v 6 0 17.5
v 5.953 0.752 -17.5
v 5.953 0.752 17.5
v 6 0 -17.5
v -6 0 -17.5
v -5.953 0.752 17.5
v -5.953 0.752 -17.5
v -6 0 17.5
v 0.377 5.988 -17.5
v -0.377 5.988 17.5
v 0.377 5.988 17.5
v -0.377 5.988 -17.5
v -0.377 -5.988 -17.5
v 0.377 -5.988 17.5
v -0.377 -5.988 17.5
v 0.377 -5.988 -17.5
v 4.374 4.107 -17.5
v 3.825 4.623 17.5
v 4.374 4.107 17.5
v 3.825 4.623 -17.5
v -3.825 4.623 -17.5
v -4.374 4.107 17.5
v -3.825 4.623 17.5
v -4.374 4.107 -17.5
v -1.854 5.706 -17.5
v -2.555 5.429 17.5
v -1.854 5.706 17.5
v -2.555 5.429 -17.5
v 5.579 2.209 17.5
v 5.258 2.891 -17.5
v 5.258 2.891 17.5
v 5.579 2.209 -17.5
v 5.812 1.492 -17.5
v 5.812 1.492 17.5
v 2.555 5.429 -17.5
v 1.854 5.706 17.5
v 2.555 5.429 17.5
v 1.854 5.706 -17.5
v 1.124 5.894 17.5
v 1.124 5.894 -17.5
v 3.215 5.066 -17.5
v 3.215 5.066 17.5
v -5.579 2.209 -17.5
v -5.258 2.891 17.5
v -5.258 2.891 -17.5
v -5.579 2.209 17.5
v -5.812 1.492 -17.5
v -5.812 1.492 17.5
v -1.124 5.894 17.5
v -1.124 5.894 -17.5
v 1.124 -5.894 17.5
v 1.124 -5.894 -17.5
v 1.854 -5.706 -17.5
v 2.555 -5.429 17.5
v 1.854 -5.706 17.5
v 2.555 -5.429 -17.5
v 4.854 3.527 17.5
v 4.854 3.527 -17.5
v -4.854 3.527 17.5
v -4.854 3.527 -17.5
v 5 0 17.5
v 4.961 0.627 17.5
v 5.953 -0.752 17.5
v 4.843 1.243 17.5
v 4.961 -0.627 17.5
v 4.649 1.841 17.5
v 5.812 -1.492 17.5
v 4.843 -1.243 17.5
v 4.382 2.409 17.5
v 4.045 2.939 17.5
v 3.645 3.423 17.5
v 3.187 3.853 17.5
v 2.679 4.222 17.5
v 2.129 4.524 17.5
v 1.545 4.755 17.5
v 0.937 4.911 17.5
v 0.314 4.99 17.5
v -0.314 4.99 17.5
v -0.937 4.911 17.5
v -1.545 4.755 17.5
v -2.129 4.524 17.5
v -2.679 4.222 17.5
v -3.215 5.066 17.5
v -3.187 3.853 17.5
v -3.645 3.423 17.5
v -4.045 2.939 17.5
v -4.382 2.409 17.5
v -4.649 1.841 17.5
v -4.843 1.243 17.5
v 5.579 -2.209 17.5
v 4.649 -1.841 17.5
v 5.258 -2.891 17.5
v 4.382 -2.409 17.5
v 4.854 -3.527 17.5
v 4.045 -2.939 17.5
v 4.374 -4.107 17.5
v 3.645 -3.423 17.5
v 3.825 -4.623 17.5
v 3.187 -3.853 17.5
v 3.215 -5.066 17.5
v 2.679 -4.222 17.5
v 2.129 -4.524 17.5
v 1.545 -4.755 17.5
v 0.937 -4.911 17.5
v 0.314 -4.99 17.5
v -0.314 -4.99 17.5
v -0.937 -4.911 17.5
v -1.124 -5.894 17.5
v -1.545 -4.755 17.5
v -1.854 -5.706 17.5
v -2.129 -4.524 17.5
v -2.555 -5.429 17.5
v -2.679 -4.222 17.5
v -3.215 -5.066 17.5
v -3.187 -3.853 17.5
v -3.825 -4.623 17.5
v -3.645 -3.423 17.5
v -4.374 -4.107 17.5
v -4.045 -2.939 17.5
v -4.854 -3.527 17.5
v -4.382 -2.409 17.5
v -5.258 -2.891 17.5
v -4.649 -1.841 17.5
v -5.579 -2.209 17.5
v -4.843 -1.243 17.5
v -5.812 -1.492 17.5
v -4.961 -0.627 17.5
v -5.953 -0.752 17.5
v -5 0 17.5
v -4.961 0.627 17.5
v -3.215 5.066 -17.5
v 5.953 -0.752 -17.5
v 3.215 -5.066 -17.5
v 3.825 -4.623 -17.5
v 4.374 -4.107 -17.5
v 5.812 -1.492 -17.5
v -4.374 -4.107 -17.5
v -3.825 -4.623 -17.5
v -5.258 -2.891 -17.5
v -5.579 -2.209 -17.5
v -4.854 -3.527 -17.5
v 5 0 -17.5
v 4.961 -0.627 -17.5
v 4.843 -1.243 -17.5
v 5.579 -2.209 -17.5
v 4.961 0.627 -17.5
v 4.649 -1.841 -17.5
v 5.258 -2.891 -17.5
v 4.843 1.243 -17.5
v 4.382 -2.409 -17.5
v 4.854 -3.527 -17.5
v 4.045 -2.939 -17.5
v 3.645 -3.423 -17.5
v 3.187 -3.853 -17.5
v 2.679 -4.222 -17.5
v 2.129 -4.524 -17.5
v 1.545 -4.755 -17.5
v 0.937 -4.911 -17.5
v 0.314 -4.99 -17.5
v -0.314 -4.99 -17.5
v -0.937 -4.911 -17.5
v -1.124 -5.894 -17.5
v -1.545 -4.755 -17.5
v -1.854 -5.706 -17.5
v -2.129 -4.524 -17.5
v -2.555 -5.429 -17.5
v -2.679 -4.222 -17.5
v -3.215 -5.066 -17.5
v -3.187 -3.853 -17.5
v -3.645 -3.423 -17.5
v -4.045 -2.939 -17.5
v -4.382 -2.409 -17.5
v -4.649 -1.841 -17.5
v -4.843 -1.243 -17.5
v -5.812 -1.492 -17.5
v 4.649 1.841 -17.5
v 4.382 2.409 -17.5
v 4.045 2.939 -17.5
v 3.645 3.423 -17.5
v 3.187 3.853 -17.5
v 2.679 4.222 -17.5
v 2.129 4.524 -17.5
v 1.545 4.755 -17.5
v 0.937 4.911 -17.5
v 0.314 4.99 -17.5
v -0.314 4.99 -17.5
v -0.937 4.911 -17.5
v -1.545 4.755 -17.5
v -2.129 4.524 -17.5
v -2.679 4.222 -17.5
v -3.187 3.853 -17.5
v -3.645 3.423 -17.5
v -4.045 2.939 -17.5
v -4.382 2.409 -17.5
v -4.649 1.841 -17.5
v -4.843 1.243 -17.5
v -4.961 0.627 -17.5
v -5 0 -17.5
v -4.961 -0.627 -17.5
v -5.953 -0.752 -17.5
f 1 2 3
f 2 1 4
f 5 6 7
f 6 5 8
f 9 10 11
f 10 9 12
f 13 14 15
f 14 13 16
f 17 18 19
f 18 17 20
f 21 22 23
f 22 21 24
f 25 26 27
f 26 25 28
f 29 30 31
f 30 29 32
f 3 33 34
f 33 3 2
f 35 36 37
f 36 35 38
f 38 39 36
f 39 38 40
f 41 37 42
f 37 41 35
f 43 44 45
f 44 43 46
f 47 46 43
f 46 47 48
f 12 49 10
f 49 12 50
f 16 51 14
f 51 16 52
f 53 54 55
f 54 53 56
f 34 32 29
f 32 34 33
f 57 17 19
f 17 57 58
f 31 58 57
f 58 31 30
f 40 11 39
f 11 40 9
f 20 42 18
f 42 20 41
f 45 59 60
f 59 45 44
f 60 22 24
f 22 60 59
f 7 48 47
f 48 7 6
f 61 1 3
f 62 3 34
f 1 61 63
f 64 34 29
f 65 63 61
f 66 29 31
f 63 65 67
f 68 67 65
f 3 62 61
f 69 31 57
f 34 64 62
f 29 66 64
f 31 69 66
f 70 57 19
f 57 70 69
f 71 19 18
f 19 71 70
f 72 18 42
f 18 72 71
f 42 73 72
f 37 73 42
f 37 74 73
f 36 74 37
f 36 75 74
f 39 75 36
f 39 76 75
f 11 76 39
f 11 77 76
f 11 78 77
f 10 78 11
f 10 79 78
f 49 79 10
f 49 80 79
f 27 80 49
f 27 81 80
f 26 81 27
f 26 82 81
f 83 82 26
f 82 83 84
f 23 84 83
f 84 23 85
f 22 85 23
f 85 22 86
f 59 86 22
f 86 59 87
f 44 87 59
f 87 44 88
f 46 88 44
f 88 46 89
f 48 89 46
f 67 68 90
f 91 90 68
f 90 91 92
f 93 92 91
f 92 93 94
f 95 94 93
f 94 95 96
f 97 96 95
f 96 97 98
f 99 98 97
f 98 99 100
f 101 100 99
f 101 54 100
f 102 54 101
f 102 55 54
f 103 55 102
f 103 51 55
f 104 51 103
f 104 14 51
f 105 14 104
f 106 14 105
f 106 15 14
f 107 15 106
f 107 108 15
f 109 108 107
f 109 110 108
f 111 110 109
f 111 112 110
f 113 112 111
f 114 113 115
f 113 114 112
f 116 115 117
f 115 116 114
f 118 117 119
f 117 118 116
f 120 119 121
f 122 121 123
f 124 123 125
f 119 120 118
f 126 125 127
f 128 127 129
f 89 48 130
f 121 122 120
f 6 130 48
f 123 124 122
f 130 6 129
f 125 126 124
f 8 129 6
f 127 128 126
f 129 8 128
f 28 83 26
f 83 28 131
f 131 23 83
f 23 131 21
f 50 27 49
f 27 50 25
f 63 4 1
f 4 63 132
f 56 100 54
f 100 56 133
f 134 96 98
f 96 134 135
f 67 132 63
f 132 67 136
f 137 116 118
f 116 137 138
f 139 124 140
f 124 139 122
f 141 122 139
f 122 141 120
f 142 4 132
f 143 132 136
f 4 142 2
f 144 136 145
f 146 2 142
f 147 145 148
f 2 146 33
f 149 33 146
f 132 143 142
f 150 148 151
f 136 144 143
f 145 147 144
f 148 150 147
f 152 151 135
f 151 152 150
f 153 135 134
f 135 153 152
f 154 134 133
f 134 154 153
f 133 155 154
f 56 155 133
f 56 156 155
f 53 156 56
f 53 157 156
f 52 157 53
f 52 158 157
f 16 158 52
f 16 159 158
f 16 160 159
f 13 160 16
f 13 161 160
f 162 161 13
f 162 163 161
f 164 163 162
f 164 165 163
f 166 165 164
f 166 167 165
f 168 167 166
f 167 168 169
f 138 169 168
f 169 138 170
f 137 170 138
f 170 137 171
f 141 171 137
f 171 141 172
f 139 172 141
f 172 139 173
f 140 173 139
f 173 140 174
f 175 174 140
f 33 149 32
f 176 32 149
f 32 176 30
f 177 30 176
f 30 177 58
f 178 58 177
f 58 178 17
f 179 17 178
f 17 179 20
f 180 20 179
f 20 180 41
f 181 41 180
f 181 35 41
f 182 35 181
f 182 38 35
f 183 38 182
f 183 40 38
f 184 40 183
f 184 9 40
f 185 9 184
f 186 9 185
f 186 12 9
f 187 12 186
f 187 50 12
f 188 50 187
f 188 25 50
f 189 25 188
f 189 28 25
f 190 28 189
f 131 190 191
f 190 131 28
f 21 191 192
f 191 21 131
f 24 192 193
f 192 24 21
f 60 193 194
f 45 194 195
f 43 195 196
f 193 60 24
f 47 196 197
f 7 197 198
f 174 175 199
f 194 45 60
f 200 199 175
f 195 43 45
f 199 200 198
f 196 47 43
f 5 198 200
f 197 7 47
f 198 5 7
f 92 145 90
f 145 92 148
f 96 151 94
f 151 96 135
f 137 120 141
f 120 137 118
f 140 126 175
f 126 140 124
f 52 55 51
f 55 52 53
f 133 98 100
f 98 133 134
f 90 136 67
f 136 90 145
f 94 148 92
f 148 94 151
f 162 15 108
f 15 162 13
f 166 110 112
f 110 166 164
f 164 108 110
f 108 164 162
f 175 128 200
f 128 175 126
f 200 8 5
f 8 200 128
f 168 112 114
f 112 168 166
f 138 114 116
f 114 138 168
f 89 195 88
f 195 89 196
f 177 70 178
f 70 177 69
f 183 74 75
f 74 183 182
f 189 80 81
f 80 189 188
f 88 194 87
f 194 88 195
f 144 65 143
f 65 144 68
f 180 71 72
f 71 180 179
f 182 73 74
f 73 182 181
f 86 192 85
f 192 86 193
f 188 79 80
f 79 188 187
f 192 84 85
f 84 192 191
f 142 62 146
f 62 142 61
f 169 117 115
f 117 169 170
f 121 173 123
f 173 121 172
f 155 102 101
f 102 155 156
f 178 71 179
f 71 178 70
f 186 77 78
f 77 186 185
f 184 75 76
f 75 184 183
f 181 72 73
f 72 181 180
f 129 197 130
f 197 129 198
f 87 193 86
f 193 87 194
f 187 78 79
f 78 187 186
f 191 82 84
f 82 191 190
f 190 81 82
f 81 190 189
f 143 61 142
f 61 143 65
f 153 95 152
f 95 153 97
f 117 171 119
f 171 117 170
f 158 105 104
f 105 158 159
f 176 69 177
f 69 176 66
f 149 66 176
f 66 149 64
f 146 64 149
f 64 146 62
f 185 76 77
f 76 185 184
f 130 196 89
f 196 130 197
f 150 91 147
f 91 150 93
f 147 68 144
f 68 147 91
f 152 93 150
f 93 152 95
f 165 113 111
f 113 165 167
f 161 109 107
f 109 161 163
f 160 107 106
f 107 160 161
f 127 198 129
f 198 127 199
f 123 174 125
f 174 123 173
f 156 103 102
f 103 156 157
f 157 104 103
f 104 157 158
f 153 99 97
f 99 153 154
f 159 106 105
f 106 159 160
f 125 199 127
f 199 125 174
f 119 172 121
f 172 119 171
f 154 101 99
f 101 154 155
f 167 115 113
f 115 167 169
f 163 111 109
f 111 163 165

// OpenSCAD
$fn = 50;


difference() {
	union() {
		translate(v = [0, 0, -17.5000000000]) {
			cylinder(h = 35, r = 6.0000000000);
		}
	}
	union() {
		translate(v = [0, 0, -100.0000000000]) {
			cylinder(h = 200, r = 5);
		}
	}
}
